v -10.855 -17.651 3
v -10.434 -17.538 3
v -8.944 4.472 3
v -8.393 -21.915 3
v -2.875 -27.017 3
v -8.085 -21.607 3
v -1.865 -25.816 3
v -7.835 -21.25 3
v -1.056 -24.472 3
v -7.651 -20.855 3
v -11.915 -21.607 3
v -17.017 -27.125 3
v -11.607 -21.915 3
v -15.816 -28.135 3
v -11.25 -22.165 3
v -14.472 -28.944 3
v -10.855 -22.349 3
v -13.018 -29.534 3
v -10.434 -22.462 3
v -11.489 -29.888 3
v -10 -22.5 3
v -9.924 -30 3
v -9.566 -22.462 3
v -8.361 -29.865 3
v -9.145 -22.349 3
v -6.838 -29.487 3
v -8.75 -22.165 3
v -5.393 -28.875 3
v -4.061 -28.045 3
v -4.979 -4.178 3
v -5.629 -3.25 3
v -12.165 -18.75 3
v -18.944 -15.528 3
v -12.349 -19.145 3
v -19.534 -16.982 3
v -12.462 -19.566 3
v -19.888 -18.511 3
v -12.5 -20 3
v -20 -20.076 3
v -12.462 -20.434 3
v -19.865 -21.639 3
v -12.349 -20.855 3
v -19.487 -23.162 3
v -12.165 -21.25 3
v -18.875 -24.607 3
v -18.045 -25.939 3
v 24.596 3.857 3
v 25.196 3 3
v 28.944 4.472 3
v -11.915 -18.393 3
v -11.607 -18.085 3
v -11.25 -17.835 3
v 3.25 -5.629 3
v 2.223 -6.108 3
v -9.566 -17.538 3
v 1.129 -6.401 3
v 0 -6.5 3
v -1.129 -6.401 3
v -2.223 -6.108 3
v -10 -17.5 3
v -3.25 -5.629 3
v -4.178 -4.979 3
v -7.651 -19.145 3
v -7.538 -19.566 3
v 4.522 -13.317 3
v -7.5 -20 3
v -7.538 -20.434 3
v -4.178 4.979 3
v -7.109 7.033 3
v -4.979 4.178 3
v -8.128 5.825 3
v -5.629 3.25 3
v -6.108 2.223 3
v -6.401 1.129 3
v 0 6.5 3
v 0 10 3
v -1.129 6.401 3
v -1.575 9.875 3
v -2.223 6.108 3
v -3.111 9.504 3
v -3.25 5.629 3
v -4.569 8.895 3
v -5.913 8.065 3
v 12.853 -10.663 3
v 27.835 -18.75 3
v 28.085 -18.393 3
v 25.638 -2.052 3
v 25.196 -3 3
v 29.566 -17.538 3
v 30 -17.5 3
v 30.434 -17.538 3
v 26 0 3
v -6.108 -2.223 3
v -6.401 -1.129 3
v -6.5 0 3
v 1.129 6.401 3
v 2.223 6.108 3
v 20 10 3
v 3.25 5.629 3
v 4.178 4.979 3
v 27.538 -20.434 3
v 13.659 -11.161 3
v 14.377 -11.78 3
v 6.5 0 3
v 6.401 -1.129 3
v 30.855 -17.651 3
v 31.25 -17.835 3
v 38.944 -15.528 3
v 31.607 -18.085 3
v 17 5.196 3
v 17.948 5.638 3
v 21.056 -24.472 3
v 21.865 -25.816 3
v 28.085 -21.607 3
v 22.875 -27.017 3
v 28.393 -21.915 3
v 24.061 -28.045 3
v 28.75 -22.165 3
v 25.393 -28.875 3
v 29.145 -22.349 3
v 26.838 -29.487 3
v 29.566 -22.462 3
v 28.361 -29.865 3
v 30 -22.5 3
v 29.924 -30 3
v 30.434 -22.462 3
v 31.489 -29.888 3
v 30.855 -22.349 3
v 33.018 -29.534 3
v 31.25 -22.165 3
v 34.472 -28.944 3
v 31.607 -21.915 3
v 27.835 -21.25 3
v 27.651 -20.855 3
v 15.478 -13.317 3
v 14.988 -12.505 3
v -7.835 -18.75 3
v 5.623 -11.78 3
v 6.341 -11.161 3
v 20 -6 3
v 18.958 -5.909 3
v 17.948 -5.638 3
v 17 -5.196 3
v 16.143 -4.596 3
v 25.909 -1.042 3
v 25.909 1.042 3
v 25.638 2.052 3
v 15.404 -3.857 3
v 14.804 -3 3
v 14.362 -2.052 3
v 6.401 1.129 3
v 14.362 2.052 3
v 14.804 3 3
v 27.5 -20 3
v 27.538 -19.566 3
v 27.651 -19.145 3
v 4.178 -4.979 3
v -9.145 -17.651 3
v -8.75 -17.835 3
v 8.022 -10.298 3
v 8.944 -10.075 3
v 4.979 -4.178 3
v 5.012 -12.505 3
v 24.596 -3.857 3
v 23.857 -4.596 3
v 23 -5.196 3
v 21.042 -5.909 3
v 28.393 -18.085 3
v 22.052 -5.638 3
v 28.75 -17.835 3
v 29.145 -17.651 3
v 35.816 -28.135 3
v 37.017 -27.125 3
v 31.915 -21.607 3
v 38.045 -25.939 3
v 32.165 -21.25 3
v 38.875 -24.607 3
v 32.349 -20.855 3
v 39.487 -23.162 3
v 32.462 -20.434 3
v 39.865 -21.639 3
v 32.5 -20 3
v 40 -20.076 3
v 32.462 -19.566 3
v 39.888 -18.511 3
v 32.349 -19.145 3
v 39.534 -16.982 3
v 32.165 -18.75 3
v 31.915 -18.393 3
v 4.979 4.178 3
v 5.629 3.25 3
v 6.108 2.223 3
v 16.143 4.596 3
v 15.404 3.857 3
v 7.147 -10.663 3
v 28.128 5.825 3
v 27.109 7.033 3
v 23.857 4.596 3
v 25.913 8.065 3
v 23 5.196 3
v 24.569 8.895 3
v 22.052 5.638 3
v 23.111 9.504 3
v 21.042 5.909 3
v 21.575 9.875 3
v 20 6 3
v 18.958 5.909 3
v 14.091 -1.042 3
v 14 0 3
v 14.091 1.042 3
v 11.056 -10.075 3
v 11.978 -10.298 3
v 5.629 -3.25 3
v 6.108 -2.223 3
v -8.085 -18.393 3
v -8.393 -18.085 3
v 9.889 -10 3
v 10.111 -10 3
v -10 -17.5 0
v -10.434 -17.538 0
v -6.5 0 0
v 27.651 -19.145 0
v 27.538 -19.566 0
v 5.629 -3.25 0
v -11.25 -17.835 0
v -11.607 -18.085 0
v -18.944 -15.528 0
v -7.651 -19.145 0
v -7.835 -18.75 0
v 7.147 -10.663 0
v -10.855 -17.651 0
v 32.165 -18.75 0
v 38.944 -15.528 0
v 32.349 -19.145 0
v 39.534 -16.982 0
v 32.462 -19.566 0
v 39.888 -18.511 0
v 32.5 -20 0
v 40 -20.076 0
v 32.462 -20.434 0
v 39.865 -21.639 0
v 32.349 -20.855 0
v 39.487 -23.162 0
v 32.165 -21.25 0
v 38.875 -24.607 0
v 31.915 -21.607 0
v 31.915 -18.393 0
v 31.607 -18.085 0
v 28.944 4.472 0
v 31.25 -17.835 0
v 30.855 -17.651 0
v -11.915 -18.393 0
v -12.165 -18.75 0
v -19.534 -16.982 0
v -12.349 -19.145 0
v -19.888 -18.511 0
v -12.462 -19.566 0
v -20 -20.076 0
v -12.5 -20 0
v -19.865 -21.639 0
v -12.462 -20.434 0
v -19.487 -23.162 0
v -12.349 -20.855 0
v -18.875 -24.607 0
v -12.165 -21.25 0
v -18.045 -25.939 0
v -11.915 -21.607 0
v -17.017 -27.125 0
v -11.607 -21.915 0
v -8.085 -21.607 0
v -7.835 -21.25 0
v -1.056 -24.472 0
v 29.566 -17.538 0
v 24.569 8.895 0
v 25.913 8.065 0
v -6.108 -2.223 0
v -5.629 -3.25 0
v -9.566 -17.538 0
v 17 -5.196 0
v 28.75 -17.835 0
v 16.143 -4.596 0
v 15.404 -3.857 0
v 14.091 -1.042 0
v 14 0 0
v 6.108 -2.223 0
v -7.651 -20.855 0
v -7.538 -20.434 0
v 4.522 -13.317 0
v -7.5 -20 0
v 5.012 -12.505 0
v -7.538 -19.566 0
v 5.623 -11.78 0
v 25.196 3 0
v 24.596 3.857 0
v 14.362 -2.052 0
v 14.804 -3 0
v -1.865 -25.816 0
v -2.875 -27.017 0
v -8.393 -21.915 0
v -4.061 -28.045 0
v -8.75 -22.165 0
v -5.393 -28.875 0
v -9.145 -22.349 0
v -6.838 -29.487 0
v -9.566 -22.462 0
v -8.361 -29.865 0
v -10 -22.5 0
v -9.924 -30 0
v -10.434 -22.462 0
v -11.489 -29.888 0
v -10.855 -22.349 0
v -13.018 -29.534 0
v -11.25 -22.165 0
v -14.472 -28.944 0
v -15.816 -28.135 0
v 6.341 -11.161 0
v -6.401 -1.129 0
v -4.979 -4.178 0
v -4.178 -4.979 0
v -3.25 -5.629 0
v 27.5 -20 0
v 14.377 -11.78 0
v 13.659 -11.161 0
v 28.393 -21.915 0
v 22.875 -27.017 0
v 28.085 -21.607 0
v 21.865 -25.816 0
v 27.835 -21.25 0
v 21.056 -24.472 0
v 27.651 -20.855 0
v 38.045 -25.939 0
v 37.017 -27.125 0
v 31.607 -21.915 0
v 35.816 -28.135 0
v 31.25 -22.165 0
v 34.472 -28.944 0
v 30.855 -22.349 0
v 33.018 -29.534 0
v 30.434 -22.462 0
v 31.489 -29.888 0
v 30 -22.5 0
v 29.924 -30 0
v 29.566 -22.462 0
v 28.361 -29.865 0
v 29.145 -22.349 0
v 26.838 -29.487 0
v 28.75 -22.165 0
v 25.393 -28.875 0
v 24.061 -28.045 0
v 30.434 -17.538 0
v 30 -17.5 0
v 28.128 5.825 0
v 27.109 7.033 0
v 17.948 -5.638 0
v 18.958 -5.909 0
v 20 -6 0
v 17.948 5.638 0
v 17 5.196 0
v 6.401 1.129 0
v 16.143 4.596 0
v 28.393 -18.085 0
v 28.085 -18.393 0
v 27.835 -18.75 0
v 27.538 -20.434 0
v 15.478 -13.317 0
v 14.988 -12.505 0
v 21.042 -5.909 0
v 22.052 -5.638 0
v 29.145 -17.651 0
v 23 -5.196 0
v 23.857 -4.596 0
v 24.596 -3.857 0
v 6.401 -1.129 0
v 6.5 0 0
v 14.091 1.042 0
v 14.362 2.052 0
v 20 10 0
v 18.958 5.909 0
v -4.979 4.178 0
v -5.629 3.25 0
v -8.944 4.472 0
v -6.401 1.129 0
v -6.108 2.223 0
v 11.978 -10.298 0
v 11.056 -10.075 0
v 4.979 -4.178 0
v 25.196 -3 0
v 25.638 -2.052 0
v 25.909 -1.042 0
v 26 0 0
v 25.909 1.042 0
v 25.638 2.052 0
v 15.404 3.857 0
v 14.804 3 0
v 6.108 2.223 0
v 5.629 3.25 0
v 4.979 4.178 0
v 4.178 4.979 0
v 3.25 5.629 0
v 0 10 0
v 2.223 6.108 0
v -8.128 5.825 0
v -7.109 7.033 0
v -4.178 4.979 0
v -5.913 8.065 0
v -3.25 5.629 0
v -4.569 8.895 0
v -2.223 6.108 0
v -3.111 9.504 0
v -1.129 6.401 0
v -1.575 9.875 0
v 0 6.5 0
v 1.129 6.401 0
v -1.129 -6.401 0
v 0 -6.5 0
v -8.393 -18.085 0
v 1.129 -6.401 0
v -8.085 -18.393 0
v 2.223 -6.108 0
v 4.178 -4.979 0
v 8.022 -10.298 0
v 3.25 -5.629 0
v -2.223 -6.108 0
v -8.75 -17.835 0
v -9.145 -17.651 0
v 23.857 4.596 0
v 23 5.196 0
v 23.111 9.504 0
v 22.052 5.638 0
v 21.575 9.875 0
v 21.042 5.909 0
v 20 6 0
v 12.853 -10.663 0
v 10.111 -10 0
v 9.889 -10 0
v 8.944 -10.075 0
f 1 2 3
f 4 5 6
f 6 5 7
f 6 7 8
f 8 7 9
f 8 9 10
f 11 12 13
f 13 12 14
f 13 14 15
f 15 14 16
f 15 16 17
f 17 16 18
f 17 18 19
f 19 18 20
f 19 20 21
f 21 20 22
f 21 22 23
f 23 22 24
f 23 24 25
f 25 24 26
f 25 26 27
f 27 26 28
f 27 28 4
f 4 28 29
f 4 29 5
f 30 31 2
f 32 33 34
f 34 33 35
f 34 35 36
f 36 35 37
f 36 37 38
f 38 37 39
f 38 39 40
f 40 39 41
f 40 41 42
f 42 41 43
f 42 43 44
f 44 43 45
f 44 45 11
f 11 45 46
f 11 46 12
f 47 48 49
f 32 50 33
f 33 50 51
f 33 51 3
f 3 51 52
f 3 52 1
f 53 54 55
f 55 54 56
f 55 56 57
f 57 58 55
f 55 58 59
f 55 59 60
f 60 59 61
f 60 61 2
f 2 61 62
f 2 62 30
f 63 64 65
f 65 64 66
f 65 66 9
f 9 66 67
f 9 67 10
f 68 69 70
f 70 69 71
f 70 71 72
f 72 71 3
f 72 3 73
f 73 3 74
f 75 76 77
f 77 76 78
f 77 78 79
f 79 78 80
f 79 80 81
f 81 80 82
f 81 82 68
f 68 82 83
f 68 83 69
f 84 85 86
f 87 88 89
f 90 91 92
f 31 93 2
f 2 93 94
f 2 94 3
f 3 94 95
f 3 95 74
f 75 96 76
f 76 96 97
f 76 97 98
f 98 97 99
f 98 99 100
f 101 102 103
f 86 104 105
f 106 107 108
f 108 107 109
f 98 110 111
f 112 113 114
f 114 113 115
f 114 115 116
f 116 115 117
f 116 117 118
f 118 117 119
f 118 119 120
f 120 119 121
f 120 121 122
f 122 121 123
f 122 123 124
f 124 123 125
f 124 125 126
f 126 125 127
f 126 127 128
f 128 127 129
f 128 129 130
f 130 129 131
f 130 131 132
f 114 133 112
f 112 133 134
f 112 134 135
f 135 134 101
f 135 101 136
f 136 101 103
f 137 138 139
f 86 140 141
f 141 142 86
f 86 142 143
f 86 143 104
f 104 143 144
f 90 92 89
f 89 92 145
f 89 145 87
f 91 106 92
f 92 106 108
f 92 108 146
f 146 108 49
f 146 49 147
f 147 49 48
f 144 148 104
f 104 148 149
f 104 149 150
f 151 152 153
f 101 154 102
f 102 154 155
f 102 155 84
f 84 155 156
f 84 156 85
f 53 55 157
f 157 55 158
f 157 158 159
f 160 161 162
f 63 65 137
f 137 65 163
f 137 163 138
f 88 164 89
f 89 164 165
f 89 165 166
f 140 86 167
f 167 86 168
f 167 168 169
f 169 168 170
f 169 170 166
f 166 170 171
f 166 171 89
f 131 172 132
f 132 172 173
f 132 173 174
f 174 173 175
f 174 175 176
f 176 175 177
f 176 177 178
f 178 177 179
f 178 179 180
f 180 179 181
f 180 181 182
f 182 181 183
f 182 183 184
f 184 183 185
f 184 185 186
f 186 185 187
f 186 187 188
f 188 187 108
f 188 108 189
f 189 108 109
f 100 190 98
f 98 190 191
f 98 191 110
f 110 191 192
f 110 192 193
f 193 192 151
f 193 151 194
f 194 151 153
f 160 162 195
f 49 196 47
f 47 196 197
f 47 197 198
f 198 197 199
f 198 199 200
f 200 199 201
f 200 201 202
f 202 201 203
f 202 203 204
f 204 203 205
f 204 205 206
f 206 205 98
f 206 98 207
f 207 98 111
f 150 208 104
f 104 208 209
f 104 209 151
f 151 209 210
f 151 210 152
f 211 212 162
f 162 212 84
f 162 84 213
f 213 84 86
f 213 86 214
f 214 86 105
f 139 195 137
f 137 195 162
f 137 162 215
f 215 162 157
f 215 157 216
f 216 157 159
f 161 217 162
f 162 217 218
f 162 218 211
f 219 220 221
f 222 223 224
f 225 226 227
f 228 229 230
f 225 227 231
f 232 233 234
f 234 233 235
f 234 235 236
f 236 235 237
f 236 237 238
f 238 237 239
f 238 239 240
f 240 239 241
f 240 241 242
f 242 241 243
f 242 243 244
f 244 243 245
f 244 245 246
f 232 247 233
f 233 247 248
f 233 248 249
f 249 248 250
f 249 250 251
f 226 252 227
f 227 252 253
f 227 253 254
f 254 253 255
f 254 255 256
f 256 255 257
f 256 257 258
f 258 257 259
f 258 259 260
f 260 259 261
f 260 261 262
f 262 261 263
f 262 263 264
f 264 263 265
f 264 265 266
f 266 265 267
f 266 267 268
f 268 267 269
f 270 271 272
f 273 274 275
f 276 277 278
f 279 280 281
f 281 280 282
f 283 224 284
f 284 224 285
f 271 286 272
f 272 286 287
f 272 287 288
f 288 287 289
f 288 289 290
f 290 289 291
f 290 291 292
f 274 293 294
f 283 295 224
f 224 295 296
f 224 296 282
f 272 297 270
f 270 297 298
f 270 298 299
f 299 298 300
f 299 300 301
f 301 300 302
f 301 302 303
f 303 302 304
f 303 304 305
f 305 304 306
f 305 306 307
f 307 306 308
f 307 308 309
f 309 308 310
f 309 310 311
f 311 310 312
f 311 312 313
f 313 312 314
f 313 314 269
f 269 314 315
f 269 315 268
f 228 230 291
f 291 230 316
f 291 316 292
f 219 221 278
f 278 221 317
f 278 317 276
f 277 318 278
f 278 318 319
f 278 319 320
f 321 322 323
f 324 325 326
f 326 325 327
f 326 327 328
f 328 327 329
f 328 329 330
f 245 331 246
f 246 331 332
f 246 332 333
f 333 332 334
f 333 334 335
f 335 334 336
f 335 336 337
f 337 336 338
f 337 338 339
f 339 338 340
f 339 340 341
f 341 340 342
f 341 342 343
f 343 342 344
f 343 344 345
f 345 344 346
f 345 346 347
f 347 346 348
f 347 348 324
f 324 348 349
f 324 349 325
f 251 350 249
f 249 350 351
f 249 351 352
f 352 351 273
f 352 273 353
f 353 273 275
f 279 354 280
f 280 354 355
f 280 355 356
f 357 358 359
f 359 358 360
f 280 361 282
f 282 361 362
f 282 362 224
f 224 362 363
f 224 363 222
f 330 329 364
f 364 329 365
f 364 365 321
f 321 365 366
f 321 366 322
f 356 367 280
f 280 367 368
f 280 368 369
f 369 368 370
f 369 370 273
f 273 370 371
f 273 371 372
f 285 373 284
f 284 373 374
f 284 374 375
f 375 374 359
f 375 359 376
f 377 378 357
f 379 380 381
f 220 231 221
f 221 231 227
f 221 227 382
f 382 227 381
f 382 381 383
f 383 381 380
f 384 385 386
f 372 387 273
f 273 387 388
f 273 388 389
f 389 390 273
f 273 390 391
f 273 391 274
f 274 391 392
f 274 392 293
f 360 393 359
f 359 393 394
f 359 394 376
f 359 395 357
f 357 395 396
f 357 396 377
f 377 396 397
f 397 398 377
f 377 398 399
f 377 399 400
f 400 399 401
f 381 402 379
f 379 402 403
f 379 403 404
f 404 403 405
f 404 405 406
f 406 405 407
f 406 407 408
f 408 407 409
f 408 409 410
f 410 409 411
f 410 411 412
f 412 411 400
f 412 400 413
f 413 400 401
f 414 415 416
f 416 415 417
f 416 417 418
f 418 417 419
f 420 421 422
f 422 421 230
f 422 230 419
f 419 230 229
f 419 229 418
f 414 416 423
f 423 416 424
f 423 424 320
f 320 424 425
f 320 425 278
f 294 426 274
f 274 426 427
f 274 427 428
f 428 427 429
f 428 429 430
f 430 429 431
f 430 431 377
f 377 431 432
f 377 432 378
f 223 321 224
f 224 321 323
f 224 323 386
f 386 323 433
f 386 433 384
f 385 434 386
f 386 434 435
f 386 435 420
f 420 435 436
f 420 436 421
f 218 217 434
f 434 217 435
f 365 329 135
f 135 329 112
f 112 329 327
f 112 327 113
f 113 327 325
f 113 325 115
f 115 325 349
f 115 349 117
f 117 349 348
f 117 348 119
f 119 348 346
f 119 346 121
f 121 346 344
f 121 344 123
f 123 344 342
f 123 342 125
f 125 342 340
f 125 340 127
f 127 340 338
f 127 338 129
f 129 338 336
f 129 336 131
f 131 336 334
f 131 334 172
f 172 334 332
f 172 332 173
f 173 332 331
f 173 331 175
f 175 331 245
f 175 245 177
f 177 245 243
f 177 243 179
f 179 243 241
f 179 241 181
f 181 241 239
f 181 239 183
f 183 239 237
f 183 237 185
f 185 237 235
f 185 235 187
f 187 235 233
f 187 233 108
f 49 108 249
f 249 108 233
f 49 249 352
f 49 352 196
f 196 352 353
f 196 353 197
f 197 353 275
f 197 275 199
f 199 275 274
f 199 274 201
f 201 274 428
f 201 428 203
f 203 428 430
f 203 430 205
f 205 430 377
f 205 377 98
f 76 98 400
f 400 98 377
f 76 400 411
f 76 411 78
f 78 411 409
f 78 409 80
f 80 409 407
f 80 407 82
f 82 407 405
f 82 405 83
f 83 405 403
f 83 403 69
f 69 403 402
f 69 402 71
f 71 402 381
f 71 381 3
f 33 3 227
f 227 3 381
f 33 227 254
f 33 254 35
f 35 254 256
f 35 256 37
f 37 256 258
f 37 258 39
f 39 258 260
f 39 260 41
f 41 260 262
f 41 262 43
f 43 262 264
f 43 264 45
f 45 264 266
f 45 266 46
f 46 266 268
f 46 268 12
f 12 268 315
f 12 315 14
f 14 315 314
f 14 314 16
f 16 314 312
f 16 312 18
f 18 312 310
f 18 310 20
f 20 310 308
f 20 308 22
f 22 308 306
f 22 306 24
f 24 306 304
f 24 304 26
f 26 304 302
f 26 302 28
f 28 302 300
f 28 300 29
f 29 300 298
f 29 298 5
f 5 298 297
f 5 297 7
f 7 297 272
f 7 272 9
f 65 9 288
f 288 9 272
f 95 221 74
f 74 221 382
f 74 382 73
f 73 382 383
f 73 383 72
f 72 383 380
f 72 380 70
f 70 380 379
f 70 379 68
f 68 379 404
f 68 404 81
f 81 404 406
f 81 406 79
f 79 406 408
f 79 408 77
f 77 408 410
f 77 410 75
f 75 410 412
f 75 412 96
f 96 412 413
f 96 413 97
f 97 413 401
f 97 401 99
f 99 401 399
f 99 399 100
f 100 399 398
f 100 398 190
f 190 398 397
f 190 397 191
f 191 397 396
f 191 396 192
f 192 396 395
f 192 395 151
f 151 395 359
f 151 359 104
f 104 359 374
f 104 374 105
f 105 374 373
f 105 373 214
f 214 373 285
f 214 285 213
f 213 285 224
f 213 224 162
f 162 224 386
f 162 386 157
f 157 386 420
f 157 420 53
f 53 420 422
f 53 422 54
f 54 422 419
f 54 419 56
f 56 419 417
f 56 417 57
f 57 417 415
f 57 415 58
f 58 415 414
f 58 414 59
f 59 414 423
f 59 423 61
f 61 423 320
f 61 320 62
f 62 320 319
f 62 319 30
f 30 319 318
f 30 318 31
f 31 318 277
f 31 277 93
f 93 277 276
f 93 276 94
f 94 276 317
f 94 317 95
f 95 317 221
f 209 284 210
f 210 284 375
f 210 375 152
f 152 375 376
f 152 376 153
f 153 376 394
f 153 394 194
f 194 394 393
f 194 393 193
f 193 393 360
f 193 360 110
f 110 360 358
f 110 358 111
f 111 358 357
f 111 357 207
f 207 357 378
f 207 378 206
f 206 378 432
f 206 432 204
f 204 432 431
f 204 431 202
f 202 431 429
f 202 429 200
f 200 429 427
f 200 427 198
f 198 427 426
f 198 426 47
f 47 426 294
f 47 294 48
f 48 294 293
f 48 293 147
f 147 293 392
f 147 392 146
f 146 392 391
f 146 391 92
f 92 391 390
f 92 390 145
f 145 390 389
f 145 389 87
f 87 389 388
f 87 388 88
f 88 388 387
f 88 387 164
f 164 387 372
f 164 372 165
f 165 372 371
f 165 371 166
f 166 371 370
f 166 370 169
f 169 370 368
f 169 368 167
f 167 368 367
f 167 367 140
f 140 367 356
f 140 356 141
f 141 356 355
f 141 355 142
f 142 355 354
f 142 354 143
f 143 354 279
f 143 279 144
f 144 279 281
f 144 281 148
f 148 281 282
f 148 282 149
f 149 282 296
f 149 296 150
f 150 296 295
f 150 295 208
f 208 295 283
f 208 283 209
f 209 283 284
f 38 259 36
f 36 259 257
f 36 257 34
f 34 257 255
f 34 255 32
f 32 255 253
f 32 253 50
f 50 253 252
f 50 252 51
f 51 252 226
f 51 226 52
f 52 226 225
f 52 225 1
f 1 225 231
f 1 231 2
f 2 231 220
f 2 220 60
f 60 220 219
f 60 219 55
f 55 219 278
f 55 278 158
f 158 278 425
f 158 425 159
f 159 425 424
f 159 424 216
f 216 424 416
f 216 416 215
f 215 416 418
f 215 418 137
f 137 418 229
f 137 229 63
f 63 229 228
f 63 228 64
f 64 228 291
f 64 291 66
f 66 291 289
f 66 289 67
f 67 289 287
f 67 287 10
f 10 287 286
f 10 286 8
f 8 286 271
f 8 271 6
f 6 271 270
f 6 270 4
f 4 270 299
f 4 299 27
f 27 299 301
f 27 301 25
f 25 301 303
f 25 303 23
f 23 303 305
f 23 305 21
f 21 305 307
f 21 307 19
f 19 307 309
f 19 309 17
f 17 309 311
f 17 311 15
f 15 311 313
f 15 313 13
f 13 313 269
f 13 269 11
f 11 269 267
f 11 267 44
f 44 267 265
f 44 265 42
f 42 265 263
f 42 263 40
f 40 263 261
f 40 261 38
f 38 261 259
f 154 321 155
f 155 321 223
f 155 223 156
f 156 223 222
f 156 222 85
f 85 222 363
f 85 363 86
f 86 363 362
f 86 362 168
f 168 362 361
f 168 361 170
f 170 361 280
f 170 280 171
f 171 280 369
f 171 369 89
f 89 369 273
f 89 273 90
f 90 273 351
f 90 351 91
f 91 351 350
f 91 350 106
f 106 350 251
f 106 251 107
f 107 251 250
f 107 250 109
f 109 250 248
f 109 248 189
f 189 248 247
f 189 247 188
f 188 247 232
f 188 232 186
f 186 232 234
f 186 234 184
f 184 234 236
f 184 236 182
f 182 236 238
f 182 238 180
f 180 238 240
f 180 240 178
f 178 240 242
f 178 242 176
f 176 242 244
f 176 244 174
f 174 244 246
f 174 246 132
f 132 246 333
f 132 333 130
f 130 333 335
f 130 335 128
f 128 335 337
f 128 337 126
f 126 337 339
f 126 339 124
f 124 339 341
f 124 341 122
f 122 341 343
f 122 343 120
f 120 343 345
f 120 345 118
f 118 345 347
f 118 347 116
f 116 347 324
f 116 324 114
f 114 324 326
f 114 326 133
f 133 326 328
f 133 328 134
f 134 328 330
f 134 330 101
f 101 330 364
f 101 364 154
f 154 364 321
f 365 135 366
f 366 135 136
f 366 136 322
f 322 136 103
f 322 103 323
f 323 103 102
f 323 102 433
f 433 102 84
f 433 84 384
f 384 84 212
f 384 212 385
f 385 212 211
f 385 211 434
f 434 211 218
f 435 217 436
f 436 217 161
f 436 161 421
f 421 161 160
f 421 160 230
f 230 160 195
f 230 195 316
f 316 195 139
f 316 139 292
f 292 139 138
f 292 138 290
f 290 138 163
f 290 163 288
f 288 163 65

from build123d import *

# Parameters (mm, degrees)
ESQUISSE1_R        = 6.5
ESQUISSE1_R_2      = 6
ESQUISSE1_R_3      = 2.5
BOSS_EXTRU_1_DEPTH = 3
CONG_1_R           = 6


with BuildPart() as part:
    # Esquisse1 → Boss.-Extru.1 (new body)
    with BuildSketch(Plane.XY):
        with BuildLine():
            Line((0, 10), (20, 10))
            ThreePointArc((20, 10), (25.257311121, 8.506508084), (28.94427191, 4.472135955))
            Line((28.94427191, 4.472135955), (38.94427191, -15.527864045))
            ThreePointArc((38.94427191, -15.527864045), (34.472135955, -28.94427191), (21.05572809, -24.472135955))
            Line((21.05572809, -24.472135955), (13.819660113, -10))
            Line((13.819660113, -10), (6.180339887, -10))
            Line((6.180339887, -10), (-1.05572809, -24.472135955))
            ThreePointArc((-1.05572809, -24.472135955), (-14.472135955, -28.94427191), (-18.94427191, -15.527864045))
            Line((-18.94427191, -15.527864045), (-8.94427191, 4.472135955))
            ThreePointArc((-8.94427191, 4.472135955), (-5.257311121, 8.506508084), (0, 10))
        make_face()
        Circle(ESQUISSE1_R, mode=Mode.SUBTRACT)
        with Locations((20, 0)):
            Circle(ESQUISSE1_R_2, mode=Mode.SUBTRACT)
        with Locations((-10, -20)):
            Circle(ESQUISSE1_R_3, mode=Mode.SUBTRACT)
        with Locations((30, -20)):
            Circle(ESQUISSE1_R_3, mode=Mode.SUBTRACT)
    extrude(amount=BOSS_EXTRU_1_DEPTH)

    # Congé1
    cong_1_edges = [part.edges().sort_by_distance(p)[0] for p in [
        (6.180339887, -10, 1.5),
        (13.819660113, -10, 1.5),
    ]]
    fillet(cong_1_edges, radius=CONG_1_R)


solid = part.part
